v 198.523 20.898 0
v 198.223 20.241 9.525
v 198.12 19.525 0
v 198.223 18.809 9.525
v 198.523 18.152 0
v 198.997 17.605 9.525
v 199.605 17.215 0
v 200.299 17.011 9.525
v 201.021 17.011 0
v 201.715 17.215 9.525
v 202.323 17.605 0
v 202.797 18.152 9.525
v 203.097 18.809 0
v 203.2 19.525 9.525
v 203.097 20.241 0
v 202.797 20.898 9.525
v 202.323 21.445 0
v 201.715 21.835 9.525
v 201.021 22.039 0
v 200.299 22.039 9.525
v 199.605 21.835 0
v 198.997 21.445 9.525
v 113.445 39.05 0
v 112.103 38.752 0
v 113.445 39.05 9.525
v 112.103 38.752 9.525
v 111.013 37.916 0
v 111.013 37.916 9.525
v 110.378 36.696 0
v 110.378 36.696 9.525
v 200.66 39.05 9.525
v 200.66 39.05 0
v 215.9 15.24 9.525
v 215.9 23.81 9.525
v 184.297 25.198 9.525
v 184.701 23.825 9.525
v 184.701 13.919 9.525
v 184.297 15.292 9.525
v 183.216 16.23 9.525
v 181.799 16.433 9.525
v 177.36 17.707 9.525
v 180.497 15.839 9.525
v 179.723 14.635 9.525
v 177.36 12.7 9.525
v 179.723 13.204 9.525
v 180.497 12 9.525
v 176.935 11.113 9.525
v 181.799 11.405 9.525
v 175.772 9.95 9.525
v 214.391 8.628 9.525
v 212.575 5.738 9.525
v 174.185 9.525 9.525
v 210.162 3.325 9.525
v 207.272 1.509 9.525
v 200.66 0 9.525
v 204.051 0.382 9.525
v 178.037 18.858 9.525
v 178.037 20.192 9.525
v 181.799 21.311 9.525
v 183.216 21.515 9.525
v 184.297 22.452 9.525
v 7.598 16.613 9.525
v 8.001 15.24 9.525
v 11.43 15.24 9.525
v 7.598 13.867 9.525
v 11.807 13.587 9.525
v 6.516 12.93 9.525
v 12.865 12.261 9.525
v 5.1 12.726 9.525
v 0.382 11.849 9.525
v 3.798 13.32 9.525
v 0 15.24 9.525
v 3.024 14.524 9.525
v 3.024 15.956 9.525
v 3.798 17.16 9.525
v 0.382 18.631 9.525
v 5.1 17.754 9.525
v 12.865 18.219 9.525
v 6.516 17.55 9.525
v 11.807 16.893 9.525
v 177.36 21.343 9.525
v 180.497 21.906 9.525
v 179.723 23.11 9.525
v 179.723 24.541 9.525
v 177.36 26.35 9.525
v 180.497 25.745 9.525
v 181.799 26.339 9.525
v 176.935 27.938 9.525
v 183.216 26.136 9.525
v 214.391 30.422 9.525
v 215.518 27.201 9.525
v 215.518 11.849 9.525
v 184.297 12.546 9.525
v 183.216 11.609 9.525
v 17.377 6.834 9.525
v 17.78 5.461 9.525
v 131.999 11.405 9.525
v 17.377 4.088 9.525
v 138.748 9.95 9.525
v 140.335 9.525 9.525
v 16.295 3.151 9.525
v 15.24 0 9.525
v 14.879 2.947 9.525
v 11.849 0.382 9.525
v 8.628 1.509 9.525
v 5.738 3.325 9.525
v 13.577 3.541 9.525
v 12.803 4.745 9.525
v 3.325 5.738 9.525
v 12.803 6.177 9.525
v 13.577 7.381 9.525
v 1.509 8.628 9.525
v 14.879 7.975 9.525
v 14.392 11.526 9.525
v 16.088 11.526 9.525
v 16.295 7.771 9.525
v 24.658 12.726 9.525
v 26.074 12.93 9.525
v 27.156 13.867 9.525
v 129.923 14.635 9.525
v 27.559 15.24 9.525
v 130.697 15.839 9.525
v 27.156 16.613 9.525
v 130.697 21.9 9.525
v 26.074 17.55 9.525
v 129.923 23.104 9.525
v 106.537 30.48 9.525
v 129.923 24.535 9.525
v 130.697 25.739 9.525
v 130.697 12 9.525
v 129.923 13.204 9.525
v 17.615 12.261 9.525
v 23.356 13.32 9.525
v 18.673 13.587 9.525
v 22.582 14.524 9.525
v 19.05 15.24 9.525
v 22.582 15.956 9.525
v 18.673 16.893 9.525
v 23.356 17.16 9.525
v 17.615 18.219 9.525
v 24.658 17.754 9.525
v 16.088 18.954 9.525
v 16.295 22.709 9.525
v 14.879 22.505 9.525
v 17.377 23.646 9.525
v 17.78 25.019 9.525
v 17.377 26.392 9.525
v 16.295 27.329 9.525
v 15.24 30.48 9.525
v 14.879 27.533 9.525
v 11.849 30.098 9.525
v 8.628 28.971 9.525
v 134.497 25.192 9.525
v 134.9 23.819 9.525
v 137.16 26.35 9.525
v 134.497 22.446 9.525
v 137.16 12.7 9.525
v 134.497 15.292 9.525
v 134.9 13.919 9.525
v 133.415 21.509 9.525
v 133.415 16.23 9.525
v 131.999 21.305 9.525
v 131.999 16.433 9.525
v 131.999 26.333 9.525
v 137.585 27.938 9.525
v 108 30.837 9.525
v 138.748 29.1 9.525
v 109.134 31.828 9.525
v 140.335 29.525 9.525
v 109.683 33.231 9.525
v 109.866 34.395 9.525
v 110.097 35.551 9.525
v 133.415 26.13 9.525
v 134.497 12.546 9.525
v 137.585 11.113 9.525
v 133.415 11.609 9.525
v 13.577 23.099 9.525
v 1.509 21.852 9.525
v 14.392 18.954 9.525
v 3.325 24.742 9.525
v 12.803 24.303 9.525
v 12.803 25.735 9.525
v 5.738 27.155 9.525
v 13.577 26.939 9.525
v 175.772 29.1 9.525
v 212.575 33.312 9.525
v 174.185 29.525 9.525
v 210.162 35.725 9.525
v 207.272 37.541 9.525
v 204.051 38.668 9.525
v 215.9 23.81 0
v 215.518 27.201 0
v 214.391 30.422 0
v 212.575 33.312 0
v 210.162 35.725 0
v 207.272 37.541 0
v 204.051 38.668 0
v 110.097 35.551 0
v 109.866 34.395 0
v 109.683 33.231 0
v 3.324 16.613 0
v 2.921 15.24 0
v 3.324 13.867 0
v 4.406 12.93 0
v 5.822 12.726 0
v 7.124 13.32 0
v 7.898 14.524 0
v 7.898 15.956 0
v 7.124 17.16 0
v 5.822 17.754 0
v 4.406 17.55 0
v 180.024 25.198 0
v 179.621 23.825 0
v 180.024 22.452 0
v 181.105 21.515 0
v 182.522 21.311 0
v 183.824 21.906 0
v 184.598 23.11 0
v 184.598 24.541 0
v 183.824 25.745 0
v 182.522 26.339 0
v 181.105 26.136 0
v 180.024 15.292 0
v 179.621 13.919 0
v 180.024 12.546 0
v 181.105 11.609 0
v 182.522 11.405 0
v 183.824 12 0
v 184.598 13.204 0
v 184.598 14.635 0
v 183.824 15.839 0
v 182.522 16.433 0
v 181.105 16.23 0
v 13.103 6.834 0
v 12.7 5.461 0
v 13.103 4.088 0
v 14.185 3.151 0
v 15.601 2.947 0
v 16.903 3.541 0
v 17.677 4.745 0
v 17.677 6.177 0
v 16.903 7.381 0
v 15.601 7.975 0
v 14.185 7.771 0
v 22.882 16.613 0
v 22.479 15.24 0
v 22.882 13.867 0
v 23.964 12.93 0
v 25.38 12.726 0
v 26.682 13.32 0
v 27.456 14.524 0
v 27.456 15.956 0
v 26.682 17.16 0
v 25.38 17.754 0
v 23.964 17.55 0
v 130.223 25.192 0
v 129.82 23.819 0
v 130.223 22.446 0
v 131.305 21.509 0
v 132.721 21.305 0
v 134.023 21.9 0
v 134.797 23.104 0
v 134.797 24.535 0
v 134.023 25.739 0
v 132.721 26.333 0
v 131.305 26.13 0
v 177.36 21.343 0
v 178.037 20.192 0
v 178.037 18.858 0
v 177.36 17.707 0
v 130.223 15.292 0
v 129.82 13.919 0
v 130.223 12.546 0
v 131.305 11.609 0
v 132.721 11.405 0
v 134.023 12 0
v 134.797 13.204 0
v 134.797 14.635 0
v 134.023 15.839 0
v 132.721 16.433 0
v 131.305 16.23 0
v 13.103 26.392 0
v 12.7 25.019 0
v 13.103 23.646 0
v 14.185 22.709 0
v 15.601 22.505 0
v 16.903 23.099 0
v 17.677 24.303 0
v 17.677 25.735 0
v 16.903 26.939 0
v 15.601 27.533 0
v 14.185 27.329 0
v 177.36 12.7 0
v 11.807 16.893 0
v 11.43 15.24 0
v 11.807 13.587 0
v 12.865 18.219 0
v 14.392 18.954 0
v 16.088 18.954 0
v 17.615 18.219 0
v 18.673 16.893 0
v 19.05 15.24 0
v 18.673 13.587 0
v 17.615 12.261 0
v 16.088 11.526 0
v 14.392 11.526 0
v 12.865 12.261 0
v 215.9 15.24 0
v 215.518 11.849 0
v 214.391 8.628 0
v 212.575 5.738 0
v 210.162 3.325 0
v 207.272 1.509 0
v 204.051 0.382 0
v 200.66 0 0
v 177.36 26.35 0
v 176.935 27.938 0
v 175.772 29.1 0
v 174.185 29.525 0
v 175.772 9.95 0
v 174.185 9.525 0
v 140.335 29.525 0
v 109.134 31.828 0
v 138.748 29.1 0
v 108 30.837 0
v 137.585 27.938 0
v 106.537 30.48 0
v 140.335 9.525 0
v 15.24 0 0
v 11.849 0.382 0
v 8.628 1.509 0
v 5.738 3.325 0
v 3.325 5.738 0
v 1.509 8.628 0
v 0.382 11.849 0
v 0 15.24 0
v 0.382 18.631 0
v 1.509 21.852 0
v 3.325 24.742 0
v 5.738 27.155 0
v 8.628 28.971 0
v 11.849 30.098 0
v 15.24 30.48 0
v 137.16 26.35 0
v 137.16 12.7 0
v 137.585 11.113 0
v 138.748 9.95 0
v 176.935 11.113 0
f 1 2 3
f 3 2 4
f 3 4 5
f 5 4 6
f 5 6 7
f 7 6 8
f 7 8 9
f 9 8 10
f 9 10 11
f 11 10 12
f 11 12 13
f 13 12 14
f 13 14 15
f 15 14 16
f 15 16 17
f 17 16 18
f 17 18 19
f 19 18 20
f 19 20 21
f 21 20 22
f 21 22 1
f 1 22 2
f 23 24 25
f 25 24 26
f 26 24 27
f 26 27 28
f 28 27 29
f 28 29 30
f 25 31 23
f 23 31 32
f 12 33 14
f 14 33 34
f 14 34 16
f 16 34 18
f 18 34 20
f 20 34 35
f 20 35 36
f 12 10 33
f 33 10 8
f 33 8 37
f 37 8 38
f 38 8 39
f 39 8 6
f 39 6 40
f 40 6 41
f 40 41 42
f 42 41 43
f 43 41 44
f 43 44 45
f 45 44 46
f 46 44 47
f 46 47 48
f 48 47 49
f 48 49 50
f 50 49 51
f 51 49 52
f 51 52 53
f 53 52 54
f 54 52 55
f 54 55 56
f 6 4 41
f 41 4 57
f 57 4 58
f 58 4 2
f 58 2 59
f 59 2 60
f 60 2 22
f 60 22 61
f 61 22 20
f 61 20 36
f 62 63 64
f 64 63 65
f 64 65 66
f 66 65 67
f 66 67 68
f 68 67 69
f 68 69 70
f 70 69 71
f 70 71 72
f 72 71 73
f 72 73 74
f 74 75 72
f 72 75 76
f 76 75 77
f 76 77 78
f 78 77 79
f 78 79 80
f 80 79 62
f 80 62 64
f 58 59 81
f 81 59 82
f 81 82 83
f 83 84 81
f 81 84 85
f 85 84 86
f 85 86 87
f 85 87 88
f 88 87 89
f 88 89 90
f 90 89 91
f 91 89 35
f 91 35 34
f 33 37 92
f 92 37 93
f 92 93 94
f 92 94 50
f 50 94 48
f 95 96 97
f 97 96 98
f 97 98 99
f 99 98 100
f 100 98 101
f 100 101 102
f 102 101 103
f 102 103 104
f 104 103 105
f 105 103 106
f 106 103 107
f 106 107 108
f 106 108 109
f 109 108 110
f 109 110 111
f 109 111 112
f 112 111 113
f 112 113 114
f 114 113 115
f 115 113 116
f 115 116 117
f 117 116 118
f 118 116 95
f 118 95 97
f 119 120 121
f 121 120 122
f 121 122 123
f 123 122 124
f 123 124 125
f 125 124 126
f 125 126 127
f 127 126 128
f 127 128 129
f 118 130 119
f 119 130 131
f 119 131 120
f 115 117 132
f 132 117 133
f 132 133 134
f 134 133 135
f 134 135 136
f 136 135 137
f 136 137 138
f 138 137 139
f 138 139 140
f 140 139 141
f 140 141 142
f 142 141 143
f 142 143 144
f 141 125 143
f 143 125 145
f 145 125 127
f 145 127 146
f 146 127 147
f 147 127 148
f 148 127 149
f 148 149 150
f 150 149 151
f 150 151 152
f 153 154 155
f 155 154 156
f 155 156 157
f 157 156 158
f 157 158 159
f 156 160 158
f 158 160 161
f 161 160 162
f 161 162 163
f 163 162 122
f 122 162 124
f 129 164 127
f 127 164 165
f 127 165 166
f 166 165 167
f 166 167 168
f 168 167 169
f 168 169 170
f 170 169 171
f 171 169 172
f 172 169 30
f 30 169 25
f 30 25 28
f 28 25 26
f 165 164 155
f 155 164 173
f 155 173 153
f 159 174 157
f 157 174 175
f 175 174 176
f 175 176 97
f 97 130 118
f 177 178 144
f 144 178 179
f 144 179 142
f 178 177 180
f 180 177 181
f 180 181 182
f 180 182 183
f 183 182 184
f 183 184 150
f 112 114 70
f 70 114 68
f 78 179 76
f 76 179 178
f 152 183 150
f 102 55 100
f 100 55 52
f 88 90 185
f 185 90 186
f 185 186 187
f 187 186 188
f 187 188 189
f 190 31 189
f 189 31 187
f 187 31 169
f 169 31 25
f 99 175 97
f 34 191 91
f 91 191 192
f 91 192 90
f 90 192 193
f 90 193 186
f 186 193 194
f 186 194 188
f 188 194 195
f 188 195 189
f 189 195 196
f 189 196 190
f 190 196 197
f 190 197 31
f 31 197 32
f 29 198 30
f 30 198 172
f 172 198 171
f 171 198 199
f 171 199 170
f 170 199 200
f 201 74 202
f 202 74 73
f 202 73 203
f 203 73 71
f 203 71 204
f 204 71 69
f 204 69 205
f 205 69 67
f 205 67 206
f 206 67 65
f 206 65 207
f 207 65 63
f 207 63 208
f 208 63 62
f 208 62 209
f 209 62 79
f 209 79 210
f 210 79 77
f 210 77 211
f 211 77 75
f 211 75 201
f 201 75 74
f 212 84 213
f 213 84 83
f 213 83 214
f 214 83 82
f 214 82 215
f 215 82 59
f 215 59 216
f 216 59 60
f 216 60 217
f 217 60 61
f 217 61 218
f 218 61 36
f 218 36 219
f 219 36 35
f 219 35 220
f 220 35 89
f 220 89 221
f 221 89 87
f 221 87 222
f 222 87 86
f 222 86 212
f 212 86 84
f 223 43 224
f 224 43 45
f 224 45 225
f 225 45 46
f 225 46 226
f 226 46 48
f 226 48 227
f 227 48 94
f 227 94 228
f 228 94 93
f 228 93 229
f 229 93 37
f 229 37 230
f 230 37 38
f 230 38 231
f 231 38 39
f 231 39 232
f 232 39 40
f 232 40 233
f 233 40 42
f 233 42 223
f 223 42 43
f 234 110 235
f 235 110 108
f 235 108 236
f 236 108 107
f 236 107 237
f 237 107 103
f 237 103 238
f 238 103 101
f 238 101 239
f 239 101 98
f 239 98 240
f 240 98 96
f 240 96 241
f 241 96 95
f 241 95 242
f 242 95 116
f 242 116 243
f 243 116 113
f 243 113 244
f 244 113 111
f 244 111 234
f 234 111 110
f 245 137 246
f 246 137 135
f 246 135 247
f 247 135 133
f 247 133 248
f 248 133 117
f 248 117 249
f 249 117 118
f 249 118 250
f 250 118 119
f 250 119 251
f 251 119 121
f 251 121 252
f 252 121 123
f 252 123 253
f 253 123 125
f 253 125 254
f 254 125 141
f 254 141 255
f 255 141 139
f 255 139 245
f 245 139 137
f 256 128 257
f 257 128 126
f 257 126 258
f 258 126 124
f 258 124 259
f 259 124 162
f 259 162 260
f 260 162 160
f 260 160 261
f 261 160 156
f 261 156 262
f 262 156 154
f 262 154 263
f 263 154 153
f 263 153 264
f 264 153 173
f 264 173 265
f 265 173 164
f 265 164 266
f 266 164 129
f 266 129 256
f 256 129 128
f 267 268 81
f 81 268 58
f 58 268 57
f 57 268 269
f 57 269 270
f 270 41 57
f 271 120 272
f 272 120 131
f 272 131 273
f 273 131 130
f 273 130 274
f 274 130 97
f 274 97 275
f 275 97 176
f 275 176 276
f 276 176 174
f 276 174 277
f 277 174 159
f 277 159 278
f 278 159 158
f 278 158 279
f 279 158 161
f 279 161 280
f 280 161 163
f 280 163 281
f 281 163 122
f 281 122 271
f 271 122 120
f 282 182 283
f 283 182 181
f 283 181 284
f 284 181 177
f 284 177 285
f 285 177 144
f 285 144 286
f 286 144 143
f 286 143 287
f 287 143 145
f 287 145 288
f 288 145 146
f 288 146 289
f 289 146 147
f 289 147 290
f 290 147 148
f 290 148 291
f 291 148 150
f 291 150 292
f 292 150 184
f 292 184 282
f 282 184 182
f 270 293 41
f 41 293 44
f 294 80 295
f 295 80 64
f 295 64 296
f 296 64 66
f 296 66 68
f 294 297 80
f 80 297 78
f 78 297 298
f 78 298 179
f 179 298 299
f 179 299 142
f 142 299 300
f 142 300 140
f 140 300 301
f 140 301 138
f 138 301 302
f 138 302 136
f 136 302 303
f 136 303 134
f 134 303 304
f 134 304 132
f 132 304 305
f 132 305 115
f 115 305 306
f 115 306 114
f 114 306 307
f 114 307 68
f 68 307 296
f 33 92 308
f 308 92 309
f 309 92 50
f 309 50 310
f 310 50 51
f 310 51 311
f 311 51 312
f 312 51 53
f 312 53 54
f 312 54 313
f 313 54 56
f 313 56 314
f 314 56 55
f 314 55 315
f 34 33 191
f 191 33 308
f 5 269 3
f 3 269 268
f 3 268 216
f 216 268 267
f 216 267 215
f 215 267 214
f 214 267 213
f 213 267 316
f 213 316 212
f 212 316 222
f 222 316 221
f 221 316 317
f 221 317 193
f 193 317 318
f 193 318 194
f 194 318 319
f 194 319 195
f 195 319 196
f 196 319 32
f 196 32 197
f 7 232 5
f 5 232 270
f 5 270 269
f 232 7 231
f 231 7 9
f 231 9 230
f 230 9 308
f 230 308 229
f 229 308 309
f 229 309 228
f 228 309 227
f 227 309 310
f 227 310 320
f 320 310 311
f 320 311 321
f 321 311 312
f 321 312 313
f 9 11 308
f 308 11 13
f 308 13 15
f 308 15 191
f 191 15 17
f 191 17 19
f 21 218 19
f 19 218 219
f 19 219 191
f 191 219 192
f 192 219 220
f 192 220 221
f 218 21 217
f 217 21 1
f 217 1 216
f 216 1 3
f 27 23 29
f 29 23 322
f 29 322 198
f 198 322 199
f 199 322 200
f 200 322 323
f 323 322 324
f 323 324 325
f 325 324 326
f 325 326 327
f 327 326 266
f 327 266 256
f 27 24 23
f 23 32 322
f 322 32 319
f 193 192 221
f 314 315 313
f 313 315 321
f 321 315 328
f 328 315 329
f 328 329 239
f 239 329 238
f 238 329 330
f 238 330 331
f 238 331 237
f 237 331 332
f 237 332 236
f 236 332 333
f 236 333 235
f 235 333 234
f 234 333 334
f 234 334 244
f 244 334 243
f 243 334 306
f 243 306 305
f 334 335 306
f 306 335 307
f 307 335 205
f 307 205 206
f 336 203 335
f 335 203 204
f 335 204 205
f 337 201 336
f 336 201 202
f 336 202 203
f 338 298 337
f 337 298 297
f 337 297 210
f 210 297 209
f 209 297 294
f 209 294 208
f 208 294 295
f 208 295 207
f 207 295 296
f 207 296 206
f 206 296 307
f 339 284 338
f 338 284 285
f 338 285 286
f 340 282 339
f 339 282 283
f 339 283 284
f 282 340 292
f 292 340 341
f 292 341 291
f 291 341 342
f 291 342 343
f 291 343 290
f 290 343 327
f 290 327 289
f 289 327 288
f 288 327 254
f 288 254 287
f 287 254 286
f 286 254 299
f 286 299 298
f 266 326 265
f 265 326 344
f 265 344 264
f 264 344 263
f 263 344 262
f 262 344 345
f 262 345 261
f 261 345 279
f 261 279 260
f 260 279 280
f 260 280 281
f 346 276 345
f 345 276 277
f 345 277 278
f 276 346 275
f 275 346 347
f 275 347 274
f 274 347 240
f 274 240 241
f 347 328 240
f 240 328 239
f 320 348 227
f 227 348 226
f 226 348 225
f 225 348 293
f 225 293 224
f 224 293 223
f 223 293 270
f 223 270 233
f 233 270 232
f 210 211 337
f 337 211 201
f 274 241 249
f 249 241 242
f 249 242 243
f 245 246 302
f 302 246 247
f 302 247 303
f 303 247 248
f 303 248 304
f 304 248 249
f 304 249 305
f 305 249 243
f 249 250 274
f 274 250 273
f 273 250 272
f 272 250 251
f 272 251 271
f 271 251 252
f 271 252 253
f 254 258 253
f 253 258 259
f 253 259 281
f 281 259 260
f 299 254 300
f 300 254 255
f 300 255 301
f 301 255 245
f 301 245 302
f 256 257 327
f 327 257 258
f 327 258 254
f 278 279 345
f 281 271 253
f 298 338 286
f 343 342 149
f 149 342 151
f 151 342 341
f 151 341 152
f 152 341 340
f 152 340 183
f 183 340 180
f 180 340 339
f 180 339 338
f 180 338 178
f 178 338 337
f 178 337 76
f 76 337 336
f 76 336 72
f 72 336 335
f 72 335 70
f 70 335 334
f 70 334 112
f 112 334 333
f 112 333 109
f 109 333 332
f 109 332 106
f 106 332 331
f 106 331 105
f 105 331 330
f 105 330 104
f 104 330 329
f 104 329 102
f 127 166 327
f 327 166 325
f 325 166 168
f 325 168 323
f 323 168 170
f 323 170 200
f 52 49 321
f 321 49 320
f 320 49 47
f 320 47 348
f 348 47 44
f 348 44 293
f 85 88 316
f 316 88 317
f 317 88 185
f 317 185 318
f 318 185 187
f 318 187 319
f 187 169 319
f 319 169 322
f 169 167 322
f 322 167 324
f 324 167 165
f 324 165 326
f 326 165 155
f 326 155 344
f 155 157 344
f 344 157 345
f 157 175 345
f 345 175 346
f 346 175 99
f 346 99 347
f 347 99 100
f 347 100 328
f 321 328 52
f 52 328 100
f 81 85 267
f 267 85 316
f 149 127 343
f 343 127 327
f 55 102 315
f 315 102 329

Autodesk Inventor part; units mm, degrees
ref_plane "YZ Plane" through (0, 0, 0) normal (1, 0, 0) x (0, 1, 0)
ref_plane "XZ Plane" through (0, 0, 0) normal (0, 1, 0) x (-1, 0, 0)
ref_plane "XY Plane" through (0, 0, 0) normal (0, 0, 1) x (1, 0, 0)
sketch "Sketch1" plane through (0, 0, 0) normal (0, 0, 1) x (1, 0, 0)
  point P0 (0, 0)
sketch "Sketch2" plane through (0, 0, 0) normal (0, 0, 1) x (1, 0, 0)
  line L0 (0, 0) -> (215.9, 0)
  line L1 (215.9, 0) -> (215.9, 50.8)
  line L2 (215.9, 50.8) -> (0, 50.8)
  line L3 (0, 50.8) -> (0, 0)
  dimension "d0" = 215.9
  dimension "d1" = 50.8
extrude "Extrusion1" add sketch "Sketch2" along normal blind 9.525
sketch "Sketch3" plane through (0, 0, 9.525) normal (0, 0, 1) x (1, 0, 0)
  line L0 (215.9, 0) -> (215.9, 50.8) projected
  line L1 (215.9, 0) -> (215.9, 30.48)
  line L2 (0, 0) -> (0, 30.48)
  line L3 (0, 50.8) -> (0, 0) projected
  line L4 (0, 30.48) -> (215.9, 30.48)
  line L5 (215.9, 0) -> (203.2, 0)
  line L6 (0, 0) -> (215.9, 0) projected
  line L7 (203.2, 0) -> (203.2, 50.8)
  line L8 (215.9, 50.8) -> (0, 50.8) projected
  line L9 (203.2, 0) -> (177.8, 0)
  line L10 (177.8, 0) -> (152.4, 0)
  line L11 (177.8, 0) -> (137.16, 0)
  line L12 (177.8, 0) -> (177.8, 9.525)
  line L13 (177.8, 9.525) -> (137.16, 9.525)
  line L14 (137.16, 9.525) -> (177.8, 9.525)
  line L15 (177.8, 9.525) -> (177.8, 30.48)
  line L16 (177.8, 30.48) -> (137.16, 30.48)
  line L17 (137.16, 30.48) -> (137.16, 9.525)
  line L18 (137.16, 9.525) -> (177.36, 9.525)
  line L19 (177.36, 9.525) -> (177.36, 29.525)
  line L20 (177.36, 29.525) -> (137.16, 29.525)
  line L21 (137.16, 29.525) -> (137.16, 9.525)
  point P0 (177.36, 9.525)
  dimension "d4" = 30.48
  dimension "d5" = 30.48
  dimension "d6" = 12.7
  dimension "d7" = 25.4
  dimension "d8" = 25.4
  dimension "d9" = 40.64
  dimension "d10" = 9.525
  dimension "d11" = 40.64
  dimension "d12" = 40.2
  dimension "d13" = 20
extrude "Extrusion2" cut sketch "Sketch3" against normal blind 25.4 contours L13 L17 L20 L19
sketch "Sketch4" plane through (0, 0, 9.525) normal (0, 0, 1) x (1, 0, 0)
  line L0 (0, 0) -> (0, 30.48)
  line L1 (0, 50.8) -> (0, 0) projected
  line L2 (137.16, 29.525) -> (177.36, 29.525) projected
  line L3 (0, 30.48) -> (137.16, 29.525)
  line L4 (215.9, 50.8) -> (0, 50.8) projected
  line L5 (0, 30.48) -> (111.76, 30.48)
  line L6 (111.76, 30.48) -> (111.76, 50.8)
  line L7 (111.76, 50.8) -> (0, 50.8)
  line L8 (0, 50.8) -> (0, 30.48)
  arc A0 (111.76, 40.64) -> (109.4345, 29.525) centre (137.16, 29.525) ccw
  point P0 (109.451, 30.48)
  dimension "d16" = 30.48
extrude "Extrusion3" cut sketch "Sketch4" against normal blind 25.4 contours L4 L6 A0 L5 L1
sketch "Sketch5" plane through (0, 0, 9.525) normal (0, 0, 1) x (1, 0, 0)
  line L0 (137.16, 9.525) -> (177.36, 9.525) projected
  line L1 (137.16, 9.525) -> (132.36, 9.525)
  line L2 (132.36, 9.525) -> (132.36, 13.9192)
  circle A0 centre (132.36, 13.9192) radius 2.25
  line L3 (132.36, 13.9192) -> (132.36, 23.8192)
  circle A1 centre (132.36, 23.8192) radius 2.2479
  line L4 (177.36, 9.525) -> (182.1606, 9.525)
  line L5 (182.1606, 9.525) -> (182.1606, 13.9192)
  circle A2 centre (182.1606, 13.9192) radius 2.2479
  line L6 (182.1606, 13.9192) -> (182.1606, 23.8252)
  circle A3 centre (182.1606, 23.8252) radius 2.2479
  point P0 (0, 0)
  dimension "d19" = 4.8
  dimension "d20" = 4.3942
  dimension "d21" = 4.5
  dimension "d22" = 9.9
  dimension "d23" = 4.4958
  dimension "d24" = 4.8006
  dimension "d25" = 4.3942
  dimension "d26" = 4.4958
  dimension "d27" = 9.906
  dimension "d28" = 4.4958
extrude "Extrusion4" cut sketch "Sketch5" against normal blind 25.4
sketch "Sketch7" plane through (0, 0, 9.525) normal (0, 0, 1) x (1, 0, 0)
  line L0 (177.36, 29.525) -> (177.36, 9.525) projected
  line L1 (177.36, 9.525) -> (215.9, 9.525)
  line L2 (215.9, 0) -> (215.9, 50.8) projected
  circle A0 centre (182.1606, 13.9192) radius 2.2479 projected
  line L3 (184.4085, 13.9192) -> (215.9, 13.9192)
  line L4 (175.586, 50.8) -> (175.586, 0)
  line L5 (0, 0) -> (215.9, 0) projected
  line L6 (141.0803, 19.525) -> (205.5055, 19.525)
  circle A1 centre (175.586, 19.525) radius 2.2479
  dimension "d33" = 4.4958
extrude "Extrusion6" cut sketch "Sketch7" against normal blind 25.4 contours A1 L6 L0 | L0 L6 L4 A1 | L6 A1 L0 | L0 A1 L4 L6 | L4 L6 A1 | L4 A1 L6
sketch "Sketch8" plane through (0, 0, 9.525) normal (0, 0, 1) x (1, 0, 0)
  point P0 (0, 0)
sketch "Sketch9" plane through (0, 0, 9.525) normal (0, 0, 1) x (1, 0, 0)
  point P0 (0, 0)
sketch "Sketch10" plane through (0, 0, 9.525) normal (0, 0, 1) x (1, 0, 0)
  point P0 (0, 0)
fillet "Fillet1" radius 3.175 4 edges at (137.16, 9.525, 4.7625) (137.16, 29.525, 4.7625) (177.36, 29.525, 4.7625) (177.36, 9.525, 4.7625)
fillet "Fillet2" radius 3.175 3 edges at (111.76, 50.8, 4.7625) (111.76, 40.64, 4.7625) (109.451, 30.48, 4.7625)
fillet "Fillet3" radius 15.24 4 edges at (0, 30.48, 4.7625) (0, 0, 4.7625) (215.9, 50.8, 4.7625) (215.9, 0, 4.7625)
sketch "Sketch11" plane through (0, 0, 9.525) normal (0, 0, 1) x (1, 0, 0)
  line L0 (106.5367, 30.48) -> (15.24, 30.48) projected
  line L1 (15.24, 0) -> (200.66, 0) projected
  line L2 (15.24, 30.48) -> (15.24, 0)
  line L3 (15.24, 0) -> (15.24, 15.24)
  line L4 (15.24, 15.24) -> (30.48, 15.24)
  line L5 (30.48, 15.24) -> (0, 15.24)
  arc A0 (15.24, 30.48) -> (15.24, 0) centre (15.24, 15.24) ccw projected
  circle A1 centre (15.24, 15.24) radius 3.81
  circle A2 centre (25.019, 15.24) radius 1.3589
  circle A3 centre (15.24, 25.019) radius 1.3589
  circle A4 centre (5.461, 15.24) radius 1.3589
  circle A5 centre (15.24, 5.461) radius 1.3589
  point P0 (0, 0)
  dimension "d39" = 15.24
  dimension "d40" = 7.62
  dimension "d41" = 2.7178
  dimension "d42" = 2.7178
  dimension "d43" = 2.7178
  dimension "d44" = 2.7178
extrude "Extrusion7" cut sketch "Sketch11" against normal blind 25.4 contours A2 L4 | L4 A2 | A3 L2 | L2 A3 | A4 L5 | L5 A4 | A1 L4 L2 | L2 L5 A1 | A5 L2 | L2 A5 | L4 A1 L2 | L2 A1 L5
sketch "Sketch12" plane through (0, 0, 9.525) normal (0, 0, 1) x (1, 0, 0)
  circle A0 centre (5.461, 15.24) radius 1.3589 projected
  circle A1 centre (5.461, 15.24) radius 2.2479
  circle A2 centre (15.24, 5.461) radius 1.3589 projected
  circle A3 centre (15.24, 5.461) radius 2.2479
  circle A4 centre (25.019, 15.24) radius 1.3589 projected
  circle A5 centre (25.019, 15.24) radius 2.2479
  circle A6 centre (15.24, 25.019) radius 1.3589 projected
  circle A7 centre (15.24, 25.019) radius 2.2479
  circle A8 centre (15.24, 25.019) radius 2.54
  circle A9 centre (25.019, 15.24) radius 2.54
  circle A10 centre (5.461, 15.24) radius 2.54
  circle A11 centre (15.24, 5.461) radius 2.54
  circle A12 centre (132.36, 13.9192) radius 2.25 projected
  circle A13 centre (132.36, 13.9192) radius 2.54
  circle A14 centre (132.36, 23.8192) radius 2.2479 projected
  circle A15 centre (132.36, 23.8192) radius 2.54
  circle A16 centre (182.1606, 23.8252) radius 2.2479 projected
  circle A17 centre (182.1606, 23.8252) radius 2.54
  circle A18 centre (182.1606, 13.9192) radius 2.2479 projected
  circle A19 centre (182.1606, 13.9192) radius 2.54
  arc A20 (177.36, 18.1445) -> (177.36, 20.9055) centre (175.586, 19.525) ccw projected
  circle A21 centre (175.586, 19.525) radius 2.54
  point P0 (0, 0)
  dimension "d47" = 4.4958
  dimension "d48" = 4.4958
  dimension "d49" = 4.4958
  dimension "d50" = 4.4958
  dimension "d51" = 5.08
  dimension "d52" = 5.08
  dimension "d53" = 5.08
  dimension "d54" = 5.08
  dimension "d55" = 5.08
  dimension "d56" = 5.08
  dimension "d57" = 5.08
  dimension "d58" = 5.08
  dimension "d59" = 5.08
extrude "Extrusion8" cut sketch "Sketch12" against normal blind 25.4 contours A0 | A1 | A2 | A3 | A4 | A5 | A6 | A7 | A8 | A9 | A10 | A11 | A12 | A13 | A14 | A15 | A16 | A17 | A18 | A19 | A21
sketch "Sketch13" plane through (0, 0, 9.525) normal (0, 0, 1) x (1, 0, 0)
  point P0 (0, 0)
ref_plane "Work Plane1" through (129.9559, 14.7389, 0) normal (1, 0, 0) x (0, 0, -1)
sketch "Sketch14" plane through (129.9559, 14.7389, 0) normal (1, 0, 0) x (0, 0, -1)
  point P0 (0, -14.7389)
sketch "Sketch15" plane through (0, 0, 0) normal (0, 0, -1) x (-1, 0, 0)
  line L0 (-160.2621, 50.5435) -> (-160.2621, 29.525)
  line L1 (-174.185, 29.525) -> (-140.335, 29.525) projected
  line L2 (-156.9844, 29.525) -> (-156.9844, 39.05)
  line L3 (-109.6833, 39.05) -> (-217.5289, 39.05)
  line L4 (-217.5289, 39.05) -> (-217.5289, 53.1054)
  line L5 (-217.5289, 53.1054) -> (-109.6833, 53.1054)
  line L6 (-109.6833, 53.1054) -> (-109.6833, 39.05)
  point P0 (0, 0)
  point P1 (-184.6931, 29.525)
  point P2 (-129.9559, 29.525)
  dimension "d62" = 9.525
extrude "Extrusion9" cut sketch "Sketch15" against normal blind 25.4 contours L3 L4 L5 L6
fillet "Fillet4" radius 15.24 1 edges at (215.4951, 39.05, 4.7625)
fillet "Fillet5" radius 3.175 1 edges at (111.122, 39.05, 4.7625)
sketch "Sketch16" plane through (0, 0, 9.525) normal (0, 0, 1) x (1, 0, 0)
  line L0 (215.9, 15.24) -> (215.9, 23.81) projected
  line L1 (215.9, 19.525) -> (178.126, 19.525)
  arc A0 (177.36, 17.7072) -> (177.36, 21.3428) centre (175.586, 19.525) ccw projected
  arc A1 (200.66, 0) -> (215.9, 15.24) centre (200.66, 15.24) ccw projected
  line L2 (113.4449, 39.05) -> (200.66, 39.05) projected
  line L3 (200.66, 0) -> (200.66, 39.05)
  circle A2 centre (200.66, 19.525) radius 2.54
  point P0 (0, 0)
  dimension "d68" = 5.08
extrude "Extrusion10" cut sketch "Sketch16" against normal blind 25.4 contours A2 L3 L1 | L1 L3 A2 | A2 L1 L3 | L1 A2 L3
properties part number "Claw arm"
